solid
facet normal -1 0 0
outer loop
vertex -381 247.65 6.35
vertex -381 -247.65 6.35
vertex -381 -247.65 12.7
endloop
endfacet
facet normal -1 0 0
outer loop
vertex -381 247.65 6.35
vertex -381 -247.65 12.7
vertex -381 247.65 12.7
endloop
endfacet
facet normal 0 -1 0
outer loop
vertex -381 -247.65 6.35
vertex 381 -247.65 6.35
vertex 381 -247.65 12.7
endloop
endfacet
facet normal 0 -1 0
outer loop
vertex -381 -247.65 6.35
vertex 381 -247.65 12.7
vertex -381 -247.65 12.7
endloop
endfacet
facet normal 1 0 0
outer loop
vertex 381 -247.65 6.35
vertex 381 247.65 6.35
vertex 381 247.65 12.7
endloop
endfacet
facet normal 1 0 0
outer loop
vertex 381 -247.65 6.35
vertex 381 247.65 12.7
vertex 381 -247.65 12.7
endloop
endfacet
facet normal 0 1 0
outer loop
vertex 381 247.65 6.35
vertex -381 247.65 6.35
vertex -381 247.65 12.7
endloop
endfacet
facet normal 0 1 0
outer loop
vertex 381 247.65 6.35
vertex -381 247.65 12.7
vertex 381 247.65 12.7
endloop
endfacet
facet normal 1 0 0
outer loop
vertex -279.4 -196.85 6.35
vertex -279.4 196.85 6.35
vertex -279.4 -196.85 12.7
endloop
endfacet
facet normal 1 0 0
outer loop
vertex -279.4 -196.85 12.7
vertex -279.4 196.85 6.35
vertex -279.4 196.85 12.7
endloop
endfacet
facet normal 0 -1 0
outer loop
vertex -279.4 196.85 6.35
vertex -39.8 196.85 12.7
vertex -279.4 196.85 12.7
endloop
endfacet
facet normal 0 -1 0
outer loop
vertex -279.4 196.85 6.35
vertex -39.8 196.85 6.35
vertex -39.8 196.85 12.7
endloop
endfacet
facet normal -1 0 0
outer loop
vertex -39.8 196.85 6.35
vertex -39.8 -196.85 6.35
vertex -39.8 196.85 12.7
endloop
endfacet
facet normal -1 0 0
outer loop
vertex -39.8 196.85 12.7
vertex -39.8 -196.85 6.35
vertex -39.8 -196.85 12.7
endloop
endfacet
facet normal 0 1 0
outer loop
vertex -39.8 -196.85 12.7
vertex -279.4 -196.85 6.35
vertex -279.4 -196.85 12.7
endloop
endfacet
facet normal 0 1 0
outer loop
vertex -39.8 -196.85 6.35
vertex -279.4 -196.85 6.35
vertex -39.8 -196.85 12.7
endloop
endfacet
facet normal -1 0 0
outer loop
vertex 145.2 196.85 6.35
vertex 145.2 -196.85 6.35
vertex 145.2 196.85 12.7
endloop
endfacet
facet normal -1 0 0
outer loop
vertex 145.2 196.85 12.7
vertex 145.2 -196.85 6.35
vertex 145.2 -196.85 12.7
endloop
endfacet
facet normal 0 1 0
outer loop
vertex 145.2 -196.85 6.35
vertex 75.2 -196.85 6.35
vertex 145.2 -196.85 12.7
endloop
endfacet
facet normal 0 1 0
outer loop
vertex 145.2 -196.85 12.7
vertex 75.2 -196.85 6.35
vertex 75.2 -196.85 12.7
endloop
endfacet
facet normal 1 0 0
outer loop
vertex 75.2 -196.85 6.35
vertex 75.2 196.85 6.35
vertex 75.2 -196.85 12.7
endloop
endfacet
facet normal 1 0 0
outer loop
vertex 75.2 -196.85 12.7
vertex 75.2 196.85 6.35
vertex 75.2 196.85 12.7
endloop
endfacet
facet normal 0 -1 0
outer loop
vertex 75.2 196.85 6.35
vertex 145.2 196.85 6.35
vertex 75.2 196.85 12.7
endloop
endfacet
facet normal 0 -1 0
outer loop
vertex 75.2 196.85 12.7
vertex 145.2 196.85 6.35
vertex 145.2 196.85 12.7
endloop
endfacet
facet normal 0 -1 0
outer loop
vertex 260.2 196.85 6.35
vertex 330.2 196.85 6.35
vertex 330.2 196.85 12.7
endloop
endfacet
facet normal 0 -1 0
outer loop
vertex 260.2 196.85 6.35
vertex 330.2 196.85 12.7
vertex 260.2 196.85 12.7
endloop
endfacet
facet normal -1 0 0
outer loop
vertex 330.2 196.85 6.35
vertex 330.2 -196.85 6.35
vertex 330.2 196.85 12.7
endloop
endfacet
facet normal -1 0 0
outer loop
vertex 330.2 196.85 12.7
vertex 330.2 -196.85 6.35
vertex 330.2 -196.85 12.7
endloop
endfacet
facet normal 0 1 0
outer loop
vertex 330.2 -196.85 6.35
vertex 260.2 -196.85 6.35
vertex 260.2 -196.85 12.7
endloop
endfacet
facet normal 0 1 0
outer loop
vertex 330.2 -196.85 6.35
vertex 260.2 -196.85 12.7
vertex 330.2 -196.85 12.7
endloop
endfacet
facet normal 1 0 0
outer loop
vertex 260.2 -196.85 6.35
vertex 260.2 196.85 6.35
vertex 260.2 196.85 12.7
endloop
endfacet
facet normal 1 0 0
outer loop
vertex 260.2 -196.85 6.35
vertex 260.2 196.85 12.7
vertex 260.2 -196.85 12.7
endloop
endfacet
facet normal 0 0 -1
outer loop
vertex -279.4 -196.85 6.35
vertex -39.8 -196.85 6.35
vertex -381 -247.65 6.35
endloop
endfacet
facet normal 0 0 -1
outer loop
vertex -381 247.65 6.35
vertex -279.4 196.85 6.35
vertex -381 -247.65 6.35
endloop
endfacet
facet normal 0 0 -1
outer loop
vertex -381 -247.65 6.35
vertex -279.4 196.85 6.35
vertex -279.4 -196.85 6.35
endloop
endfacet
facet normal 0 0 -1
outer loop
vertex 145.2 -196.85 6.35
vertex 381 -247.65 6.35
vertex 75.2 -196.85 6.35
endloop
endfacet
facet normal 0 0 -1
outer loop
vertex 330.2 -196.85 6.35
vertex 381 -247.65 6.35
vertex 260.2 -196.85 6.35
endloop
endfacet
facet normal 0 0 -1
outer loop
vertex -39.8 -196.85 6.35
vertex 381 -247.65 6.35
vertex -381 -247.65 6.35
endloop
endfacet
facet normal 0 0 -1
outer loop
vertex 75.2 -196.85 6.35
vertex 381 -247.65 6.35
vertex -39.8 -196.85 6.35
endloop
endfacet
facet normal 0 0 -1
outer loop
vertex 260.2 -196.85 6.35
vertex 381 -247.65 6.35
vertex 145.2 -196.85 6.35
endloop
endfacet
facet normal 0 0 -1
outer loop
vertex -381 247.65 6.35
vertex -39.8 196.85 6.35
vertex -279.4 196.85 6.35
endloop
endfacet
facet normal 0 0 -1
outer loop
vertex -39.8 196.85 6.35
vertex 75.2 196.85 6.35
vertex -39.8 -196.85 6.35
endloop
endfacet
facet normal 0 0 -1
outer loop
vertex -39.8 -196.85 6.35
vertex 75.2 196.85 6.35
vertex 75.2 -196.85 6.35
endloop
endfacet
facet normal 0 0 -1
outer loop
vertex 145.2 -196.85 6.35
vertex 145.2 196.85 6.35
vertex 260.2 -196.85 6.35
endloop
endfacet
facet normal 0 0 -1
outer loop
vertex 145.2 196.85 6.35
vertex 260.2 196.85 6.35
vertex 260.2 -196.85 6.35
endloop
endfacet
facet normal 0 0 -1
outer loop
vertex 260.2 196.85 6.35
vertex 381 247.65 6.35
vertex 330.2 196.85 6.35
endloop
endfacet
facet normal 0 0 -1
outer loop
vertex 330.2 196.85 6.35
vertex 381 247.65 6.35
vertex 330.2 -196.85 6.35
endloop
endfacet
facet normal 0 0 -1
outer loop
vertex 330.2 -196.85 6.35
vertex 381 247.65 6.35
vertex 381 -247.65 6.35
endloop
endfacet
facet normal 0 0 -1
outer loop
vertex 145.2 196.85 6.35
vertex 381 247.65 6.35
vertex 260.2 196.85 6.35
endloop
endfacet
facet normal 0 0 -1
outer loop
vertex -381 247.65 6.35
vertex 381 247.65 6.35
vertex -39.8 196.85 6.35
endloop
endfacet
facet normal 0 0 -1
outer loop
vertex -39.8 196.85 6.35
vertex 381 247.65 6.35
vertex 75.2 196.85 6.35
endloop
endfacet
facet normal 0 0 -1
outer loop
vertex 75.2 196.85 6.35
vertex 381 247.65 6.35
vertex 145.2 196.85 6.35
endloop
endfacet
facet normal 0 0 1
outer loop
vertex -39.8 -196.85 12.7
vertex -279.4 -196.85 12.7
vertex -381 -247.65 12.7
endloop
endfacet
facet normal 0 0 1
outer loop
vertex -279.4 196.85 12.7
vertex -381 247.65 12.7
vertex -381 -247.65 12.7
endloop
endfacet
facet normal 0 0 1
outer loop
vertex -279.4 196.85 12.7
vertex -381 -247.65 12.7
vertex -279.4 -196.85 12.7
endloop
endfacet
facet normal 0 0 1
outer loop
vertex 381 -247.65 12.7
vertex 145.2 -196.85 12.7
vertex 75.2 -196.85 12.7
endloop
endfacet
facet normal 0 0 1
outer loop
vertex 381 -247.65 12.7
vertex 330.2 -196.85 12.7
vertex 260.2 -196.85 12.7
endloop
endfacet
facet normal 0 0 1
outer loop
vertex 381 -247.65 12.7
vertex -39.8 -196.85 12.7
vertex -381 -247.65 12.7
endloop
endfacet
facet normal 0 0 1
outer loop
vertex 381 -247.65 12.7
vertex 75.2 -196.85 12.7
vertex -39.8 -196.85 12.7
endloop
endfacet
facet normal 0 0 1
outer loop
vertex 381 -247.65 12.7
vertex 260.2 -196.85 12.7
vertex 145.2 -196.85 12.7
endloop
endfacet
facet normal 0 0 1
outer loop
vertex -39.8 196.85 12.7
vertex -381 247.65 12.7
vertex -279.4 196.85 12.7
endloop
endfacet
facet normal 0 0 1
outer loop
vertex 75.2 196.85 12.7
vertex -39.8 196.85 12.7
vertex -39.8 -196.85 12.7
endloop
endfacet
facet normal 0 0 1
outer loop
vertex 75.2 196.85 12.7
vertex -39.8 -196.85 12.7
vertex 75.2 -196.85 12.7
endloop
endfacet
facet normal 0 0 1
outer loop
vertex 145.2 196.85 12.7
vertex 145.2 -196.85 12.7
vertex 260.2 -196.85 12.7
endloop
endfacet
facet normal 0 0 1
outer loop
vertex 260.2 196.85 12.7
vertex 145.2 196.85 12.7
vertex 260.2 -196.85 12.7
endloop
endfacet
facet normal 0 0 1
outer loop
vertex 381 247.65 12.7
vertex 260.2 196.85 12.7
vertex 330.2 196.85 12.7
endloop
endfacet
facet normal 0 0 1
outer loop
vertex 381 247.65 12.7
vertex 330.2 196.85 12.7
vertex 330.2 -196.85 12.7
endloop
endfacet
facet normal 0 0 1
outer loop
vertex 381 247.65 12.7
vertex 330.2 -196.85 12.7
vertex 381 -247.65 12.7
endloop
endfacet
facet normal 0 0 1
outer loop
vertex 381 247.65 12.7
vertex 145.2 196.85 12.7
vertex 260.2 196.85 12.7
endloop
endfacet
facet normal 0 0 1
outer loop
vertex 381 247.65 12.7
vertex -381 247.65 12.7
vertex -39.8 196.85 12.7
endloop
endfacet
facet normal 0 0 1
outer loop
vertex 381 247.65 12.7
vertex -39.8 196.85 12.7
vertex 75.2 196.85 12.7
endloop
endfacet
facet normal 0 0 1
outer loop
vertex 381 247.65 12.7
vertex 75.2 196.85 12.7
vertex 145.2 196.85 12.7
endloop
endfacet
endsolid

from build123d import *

# Parameters (mm, degrees)
SKETCH_W   = 762
SKETCH_H   = 495.3
SKETCH_W_2 = 70
SKETCH_H_2 = 393.7
SKETCH_W_3 = 239.6
PAD_DEPTH  = 6.35


with BuildPart() as part:
    # Sketch → Pad (new body)
    with BuildSketch(Plane.XY.offset(6.35)):
        Rectangle(SKETCH_W, SKETCH_H)
        with Locations((295.2, 0)):
            Rectangle(SKETCH_W_2, SKETCH_H_2, mode=Mode.SUBTRACT)
        with Locations((-159.6, 0)):
            Rectangle(SKETCH_W_3, SKETCH_H_2, mode=Mode.SUBTRACT)
        with Locations((110.2, 0)):
            Rectangle(SKETCH_W_2, SKETCH_H_2, mode=Mode.SUBTRACT)
    extrude(amount=PAD_DEPTH)


solid = part.part
